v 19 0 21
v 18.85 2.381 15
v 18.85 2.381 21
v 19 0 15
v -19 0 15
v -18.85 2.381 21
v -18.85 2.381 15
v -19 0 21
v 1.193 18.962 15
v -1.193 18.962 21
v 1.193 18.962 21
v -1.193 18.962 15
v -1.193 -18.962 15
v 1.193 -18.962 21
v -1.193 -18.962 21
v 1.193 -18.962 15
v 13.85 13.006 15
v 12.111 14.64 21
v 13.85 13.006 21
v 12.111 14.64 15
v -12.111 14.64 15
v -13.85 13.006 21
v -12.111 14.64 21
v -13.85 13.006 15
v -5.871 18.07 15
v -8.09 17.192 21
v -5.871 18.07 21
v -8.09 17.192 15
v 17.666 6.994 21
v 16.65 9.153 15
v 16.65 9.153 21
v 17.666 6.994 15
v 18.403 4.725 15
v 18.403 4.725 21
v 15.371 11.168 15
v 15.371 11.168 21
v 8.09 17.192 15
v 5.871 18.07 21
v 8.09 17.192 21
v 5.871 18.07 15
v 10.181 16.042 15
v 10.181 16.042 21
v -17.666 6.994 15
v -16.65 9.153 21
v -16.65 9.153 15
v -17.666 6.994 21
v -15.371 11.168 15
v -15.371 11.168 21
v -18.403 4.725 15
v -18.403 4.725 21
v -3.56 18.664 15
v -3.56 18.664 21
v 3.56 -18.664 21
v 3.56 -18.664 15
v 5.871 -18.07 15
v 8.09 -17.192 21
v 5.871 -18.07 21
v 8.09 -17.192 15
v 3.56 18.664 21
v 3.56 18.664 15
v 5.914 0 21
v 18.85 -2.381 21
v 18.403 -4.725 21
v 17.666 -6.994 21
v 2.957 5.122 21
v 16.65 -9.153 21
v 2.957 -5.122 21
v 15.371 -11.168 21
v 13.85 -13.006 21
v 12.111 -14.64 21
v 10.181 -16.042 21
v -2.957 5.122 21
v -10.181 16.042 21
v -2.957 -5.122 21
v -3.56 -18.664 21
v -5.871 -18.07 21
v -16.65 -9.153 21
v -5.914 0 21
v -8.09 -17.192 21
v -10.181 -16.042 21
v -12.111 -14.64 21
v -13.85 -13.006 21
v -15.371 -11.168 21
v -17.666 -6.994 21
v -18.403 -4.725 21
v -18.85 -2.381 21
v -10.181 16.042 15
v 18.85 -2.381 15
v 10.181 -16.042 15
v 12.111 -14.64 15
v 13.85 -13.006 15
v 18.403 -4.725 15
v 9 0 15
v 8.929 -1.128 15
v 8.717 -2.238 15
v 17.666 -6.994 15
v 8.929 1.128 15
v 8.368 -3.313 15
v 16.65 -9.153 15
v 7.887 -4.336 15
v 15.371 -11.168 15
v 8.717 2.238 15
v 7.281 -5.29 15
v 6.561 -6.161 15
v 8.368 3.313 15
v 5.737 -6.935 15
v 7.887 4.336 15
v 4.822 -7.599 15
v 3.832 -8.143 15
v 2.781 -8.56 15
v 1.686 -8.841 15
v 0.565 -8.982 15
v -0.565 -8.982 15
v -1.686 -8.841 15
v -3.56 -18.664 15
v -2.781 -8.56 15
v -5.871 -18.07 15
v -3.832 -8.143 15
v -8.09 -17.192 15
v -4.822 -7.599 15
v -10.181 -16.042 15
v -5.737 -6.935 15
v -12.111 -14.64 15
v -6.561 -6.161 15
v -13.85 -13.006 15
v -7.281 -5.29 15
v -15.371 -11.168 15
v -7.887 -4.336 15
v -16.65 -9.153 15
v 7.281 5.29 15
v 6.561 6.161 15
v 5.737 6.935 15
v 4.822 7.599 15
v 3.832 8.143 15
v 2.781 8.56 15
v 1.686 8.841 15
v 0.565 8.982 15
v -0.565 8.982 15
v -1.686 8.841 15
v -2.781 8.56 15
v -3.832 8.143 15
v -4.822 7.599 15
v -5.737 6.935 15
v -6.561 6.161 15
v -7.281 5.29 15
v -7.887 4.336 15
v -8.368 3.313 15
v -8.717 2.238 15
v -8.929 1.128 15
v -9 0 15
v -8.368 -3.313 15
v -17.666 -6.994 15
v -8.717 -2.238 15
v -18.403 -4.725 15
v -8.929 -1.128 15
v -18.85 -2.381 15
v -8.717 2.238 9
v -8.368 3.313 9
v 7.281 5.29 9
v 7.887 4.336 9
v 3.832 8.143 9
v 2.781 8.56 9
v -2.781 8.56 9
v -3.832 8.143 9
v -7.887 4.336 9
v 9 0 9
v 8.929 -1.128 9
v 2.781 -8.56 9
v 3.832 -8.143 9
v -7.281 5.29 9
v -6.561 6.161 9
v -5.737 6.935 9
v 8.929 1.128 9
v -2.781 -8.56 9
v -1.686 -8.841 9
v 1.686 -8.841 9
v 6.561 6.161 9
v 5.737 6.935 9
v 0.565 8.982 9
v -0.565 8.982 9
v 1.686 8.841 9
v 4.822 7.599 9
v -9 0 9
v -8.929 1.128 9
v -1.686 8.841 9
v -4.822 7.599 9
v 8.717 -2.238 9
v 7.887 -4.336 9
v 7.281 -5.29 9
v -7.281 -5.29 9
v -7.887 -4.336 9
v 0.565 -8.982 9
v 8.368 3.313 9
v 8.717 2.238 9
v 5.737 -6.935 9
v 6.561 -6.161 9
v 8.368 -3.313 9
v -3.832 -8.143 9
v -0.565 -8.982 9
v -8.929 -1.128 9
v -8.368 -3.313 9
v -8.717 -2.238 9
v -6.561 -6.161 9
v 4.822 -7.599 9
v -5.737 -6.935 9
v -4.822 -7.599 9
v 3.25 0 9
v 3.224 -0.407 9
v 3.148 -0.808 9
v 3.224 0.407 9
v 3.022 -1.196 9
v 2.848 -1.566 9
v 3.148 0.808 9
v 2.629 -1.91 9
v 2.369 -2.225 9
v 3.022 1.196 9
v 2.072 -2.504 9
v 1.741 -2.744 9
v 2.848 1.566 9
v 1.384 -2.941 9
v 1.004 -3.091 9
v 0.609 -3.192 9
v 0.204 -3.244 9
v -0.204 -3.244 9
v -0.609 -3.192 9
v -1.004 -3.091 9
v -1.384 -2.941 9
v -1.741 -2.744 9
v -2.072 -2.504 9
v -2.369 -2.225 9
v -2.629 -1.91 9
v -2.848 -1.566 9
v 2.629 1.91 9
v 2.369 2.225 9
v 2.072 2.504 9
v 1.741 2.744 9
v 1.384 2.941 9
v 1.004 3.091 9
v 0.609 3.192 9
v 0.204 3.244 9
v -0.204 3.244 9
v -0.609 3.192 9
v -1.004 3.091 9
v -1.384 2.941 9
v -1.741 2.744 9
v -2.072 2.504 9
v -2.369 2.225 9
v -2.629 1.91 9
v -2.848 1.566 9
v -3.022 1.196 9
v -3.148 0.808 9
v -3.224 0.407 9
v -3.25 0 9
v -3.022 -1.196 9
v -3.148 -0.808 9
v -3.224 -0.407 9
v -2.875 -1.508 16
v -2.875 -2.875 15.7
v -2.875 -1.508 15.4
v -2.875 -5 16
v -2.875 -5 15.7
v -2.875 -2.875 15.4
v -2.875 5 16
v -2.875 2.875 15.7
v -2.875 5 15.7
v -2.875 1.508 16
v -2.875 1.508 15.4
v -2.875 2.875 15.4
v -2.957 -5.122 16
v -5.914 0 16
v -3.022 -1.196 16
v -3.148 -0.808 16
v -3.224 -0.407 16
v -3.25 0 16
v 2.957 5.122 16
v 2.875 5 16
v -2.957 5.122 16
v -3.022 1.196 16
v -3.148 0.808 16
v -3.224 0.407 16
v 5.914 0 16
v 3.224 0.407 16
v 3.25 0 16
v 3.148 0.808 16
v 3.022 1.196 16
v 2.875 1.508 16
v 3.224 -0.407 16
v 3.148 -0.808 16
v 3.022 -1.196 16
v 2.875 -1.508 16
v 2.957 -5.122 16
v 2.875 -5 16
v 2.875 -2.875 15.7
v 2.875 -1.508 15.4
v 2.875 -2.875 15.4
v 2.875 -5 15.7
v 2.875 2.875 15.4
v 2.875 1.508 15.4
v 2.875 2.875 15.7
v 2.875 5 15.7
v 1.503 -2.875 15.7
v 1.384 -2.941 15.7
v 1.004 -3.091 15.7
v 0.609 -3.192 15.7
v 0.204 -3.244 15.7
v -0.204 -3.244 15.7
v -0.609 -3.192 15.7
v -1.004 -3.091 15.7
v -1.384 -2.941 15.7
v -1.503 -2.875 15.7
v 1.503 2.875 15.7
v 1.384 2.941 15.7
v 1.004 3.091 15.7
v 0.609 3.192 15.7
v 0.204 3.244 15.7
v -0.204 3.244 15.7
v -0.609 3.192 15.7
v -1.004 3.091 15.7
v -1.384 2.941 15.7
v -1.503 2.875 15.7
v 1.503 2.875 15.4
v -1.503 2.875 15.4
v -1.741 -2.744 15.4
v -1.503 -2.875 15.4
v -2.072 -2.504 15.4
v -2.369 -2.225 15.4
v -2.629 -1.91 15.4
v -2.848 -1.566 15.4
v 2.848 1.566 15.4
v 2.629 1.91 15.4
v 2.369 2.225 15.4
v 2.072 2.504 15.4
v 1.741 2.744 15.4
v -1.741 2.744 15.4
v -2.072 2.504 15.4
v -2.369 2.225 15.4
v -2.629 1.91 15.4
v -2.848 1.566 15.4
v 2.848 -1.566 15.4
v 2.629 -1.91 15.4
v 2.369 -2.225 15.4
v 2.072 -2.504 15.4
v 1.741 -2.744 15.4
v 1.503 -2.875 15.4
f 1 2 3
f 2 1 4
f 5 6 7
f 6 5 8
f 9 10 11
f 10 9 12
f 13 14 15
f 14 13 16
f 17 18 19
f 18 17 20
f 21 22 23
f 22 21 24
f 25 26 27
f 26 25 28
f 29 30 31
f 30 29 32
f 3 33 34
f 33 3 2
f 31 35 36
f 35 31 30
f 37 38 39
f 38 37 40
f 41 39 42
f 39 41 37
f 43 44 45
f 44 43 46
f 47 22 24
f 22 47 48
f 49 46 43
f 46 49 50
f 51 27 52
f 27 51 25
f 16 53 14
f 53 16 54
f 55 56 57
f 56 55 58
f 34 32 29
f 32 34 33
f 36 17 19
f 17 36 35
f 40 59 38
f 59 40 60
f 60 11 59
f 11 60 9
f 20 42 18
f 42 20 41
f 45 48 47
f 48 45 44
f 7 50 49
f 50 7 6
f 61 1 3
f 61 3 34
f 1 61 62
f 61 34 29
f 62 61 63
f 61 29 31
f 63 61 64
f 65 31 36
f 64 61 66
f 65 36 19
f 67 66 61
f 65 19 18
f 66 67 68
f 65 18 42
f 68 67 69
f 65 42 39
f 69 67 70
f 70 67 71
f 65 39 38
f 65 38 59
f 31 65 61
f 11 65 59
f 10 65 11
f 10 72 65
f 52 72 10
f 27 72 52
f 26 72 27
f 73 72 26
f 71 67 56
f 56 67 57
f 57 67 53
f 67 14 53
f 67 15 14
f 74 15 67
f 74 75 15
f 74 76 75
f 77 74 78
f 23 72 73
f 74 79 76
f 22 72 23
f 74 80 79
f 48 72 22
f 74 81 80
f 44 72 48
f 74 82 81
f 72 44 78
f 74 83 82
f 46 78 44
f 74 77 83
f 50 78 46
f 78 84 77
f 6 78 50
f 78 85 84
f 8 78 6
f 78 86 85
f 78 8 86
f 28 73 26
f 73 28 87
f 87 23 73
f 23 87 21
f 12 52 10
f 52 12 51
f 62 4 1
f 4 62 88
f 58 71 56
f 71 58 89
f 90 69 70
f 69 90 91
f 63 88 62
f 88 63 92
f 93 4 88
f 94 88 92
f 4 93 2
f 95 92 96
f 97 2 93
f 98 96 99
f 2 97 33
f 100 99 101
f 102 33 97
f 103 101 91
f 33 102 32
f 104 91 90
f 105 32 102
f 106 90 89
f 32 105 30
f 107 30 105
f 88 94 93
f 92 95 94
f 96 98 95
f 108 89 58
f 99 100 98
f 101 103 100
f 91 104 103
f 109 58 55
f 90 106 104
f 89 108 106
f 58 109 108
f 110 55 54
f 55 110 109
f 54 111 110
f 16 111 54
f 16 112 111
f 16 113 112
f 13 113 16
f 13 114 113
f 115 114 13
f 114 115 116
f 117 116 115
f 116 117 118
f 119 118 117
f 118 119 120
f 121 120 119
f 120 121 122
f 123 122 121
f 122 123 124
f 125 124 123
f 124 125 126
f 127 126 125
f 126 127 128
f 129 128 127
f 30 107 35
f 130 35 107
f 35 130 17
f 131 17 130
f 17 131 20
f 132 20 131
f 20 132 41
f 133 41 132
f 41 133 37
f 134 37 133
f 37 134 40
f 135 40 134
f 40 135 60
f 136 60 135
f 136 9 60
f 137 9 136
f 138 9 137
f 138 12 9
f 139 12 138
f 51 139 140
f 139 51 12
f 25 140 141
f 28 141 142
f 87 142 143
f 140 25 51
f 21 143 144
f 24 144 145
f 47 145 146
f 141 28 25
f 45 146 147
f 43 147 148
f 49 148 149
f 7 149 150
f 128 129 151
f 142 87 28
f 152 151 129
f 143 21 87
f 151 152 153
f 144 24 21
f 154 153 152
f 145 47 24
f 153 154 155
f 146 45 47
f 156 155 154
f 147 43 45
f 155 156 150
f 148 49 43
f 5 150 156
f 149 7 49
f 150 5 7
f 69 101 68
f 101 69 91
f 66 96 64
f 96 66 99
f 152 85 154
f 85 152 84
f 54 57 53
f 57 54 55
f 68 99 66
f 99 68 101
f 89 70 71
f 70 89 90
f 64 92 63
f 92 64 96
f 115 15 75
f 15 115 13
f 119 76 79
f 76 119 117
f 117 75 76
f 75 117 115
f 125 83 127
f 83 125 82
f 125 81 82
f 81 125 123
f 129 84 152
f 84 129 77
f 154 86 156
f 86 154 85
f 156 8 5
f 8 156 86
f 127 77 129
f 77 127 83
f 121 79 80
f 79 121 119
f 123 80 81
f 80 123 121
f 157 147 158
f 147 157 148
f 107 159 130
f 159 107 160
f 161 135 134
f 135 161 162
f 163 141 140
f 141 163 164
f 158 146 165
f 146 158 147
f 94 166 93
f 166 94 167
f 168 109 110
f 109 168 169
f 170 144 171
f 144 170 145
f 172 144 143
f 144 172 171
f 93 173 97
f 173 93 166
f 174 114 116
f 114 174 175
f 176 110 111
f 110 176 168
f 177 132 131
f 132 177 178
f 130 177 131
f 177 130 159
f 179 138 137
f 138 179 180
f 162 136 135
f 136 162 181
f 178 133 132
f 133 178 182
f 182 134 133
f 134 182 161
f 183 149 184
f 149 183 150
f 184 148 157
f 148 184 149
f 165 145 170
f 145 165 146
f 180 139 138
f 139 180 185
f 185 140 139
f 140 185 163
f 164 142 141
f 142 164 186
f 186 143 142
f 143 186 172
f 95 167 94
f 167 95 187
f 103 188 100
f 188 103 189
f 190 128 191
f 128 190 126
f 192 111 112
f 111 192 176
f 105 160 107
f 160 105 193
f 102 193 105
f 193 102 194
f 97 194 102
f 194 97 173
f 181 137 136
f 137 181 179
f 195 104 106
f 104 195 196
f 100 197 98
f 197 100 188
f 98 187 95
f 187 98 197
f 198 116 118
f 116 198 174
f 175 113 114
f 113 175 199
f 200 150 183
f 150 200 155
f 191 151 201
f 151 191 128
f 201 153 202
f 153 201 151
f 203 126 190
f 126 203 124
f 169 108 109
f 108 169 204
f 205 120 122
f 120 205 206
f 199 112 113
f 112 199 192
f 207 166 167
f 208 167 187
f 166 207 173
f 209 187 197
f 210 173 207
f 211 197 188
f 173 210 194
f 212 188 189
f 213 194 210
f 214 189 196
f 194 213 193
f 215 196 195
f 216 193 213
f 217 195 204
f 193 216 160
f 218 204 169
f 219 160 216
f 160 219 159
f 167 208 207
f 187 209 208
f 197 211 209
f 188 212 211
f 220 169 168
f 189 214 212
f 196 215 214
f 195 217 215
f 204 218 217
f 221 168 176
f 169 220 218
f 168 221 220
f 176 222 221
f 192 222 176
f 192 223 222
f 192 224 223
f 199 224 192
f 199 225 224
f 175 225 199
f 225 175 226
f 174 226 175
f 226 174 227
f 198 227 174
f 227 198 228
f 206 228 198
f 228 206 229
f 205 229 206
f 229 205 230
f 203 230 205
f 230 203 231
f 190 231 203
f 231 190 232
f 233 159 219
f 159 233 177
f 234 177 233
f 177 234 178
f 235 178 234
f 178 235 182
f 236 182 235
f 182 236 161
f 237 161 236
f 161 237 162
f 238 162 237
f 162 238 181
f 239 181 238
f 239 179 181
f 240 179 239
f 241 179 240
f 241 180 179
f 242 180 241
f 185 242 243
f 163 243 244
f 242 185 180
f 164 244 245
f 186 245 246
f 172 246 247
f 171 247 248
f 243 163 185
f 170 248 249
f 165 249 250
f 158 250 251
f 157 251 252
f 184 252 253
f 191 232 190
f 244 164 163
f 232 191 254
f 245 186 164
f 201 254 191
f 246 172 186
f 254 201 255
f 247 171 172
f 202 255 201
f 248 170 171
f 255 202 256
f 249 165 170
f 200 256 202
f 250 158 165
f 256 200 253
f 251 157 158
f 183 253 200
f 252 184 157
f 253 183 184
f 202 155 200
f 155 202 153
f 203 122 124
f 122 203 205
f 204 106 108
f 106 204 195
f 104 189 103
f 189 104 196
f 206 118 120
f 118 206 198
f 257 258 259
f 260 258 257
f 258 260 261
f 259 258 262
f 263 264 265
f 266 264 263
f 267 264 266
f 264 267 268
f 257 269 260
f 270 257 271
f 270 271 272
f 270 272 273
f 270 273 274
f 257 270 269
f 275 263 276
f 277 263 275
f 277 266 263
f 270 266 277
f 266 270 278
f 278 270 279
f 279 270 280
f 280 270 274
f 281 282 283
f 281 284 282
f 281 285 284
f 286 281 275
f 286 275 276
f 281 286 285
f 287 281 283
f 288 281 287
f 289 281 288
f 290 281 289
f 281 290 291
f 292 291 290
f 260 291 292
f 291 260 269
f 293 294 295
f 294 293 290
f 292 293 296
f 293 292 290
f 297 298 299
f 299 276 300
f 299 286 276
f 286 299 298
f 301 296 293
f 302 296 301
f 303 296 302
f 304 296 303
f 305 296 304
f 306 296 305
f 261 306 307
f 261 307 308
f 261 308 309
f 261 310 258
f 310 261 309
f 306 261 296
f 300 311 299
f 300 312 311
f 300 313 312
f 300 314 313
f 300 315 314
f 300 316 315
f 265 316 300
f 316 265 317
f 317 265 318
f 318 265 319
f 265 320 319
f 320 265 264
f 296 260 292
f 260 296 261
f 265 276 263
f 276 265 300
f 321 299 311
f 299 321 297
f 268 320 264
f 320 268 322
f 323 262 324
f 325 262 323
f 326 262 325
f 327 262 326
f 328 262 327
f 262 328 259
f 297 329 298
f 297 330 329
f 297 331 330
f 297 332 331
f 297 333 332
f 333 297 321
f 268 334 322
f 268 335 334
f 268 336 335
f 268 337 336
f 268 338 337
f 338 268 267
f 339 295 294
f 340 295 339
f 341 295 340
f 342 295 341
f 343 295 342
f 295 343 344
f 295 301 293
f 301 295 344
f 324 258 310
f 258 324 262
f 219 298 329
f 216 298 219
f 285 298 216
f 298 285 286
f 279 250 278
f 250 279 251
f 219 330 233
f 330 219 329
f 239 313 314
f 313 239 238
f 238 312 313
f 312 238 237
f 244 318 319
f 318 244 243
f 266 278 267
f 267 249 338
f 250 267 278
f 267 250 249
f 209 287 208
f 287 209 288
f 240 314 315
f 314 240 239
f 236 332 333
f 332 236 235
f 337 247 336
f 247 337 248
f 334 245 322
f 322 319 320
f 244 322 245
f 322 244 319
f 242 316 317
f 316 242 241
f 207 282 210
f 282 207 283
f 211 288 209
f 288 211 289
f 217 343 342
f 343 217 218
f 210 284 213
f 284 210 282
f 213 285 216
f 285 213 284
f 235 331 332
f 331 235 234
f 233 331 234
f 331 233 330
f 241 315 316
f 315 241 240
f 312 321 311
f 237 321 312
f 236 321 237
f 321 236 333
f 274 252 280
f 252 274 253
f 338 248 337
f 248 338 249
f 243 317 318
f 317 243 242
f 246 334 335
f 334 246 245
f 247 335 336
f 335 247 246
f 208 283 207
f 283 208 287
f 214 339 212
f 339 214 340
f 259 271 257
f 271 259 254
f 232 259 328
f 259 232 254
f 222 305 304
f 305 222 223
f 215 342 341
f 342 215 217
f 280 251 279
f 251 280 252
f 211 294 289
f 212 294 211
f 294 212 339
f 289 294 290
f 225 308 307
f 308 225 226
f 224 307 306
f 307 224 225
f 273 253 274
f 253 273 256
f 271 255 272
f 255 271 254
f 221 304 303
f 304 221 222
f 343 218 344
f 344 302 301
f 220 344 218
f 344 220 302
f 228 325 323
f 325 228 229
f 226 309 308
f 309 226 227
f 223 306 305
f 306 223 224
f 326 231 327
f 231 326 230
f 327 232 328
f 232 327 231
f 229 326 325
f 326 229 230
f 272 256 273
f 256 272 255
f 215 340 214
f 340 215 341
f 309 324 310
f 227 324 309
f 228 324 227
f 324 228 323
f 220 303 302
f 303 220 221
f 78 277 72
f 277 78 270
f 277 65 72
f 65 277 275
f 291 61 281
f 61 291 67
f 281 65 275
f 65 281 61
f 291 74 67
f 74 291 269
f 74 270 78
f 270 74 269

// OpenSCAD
$fn = 50;


difference() {
	union() {
		translate(v = [0, 0, 15.0000000000]) {
			cylinder(h = 6, r = 19.0000000000);
		}
		translate(v = [0, 0, 9.0000000000]) {
			cylinder(h = 12, r = 9.0000000000);
		}
	}
	union() {
		translate(v = [0, 0, 21]) {
			rotate(a = [0, 0, 0]) {
				difference() {
					union() {
						#translate(v = [-2.8750000000, -5.0000000000, -5.3000000000]) {
							cube(size = [5.7500000000, 10, 0.3000000000]);
						}
						#translate(v = [-2.8750000000, -2.8750000000, -5.6000000000]) {
							cube(size = [5.7500000000, 5.7500000000, 0.3000000000]);
						}
						#translate(v = [-2.8750000000, -5.0000000000, 0]) {
							cube(size = [5.7500000000, 10, 0.3000000000]);
						}
						#translate(v = [-2.8750000000, -2.8750000000, 0.3000000000]) {
							cube(size = [5.7500000000, 5.7500000000, 0.3000000000]);
						}
						#translate(v = [0, 0, -100.0000000000]) {
							cylinder(h = 200, r = 3.2500000000);
						}
						translate(v = [0, 0, -5]) {
							#linear_extrude(height = 5) {
								polygon(points = [[5.9142500000, 0.0000000000], [2.9571250000, 5.1218907443], [-2.9571250000, 5.1218907443], [-5.9142500000, 0.0000000000], [-2.9571250000, -5.1218907443], [2.9571250000, -5.1218907443]]);
							}
						}
						#translate(v = [-2.8750000000, -5.0000000000, -5.3000000000]) {
							cube(size = [5.7500000000, 10, 0.3000000000]);
						}
						#translate(v = [-2.8750000000, -2.8750000000, -5.6000000000]) {
							cube(size = [5.7500000000, 5.7500000000, 0.3000000000]);
						}
						#translate(v = [-2.8750000000, -5.0000000000, 0]) {
							cube(size = [5.7500000000, 10, 0.3000000000]);
						}
						#translate(v = [-2.8750000000, -2.8750000000, 0.3000000000]) {
							cube(size = [5.7500000000, 5.7500000000, 0.3000000000]);
						}
						#translate(v = [0, 0, -100.0000000000]) {
							cylinder(h = 200, r = 3.2500000000);
						}
						#translate(v = [-2.8750000000, -5.0000000000, -5.3000000000]) {
							cube(size = [5.7500000000, 10, 0.3000000000]);
						}
						#translate(v = [-2.8750000000, -2.8750000000, -5.6000000000]) {
							cube(size = [5.7500000000, 5.7500000000, 0.3000000000]);
						}
						#translate(v = [-2.8750000000, -5.0000000000, 0]) {
							cube(size = [5.7500000000, 10, 0.3000000000]);
						}
						#translate(v = [-2.8750000000, -2.8750000000, 0.3000000000]) {
							cube(size = [5.7500000000, 5.7500000000, 0.3000000000]);
						}
						#translate(v = [0, 0, -100.0000000000]) {
							cylinder(h = 200, r = 3.2500000000);
						}
					}
					union();
				}
			}
		}
		#translate(v = [0, 0, -100.0000000000]) {
			cylinder(h = 200, r = 3.2500000000);
		}
	}
}
